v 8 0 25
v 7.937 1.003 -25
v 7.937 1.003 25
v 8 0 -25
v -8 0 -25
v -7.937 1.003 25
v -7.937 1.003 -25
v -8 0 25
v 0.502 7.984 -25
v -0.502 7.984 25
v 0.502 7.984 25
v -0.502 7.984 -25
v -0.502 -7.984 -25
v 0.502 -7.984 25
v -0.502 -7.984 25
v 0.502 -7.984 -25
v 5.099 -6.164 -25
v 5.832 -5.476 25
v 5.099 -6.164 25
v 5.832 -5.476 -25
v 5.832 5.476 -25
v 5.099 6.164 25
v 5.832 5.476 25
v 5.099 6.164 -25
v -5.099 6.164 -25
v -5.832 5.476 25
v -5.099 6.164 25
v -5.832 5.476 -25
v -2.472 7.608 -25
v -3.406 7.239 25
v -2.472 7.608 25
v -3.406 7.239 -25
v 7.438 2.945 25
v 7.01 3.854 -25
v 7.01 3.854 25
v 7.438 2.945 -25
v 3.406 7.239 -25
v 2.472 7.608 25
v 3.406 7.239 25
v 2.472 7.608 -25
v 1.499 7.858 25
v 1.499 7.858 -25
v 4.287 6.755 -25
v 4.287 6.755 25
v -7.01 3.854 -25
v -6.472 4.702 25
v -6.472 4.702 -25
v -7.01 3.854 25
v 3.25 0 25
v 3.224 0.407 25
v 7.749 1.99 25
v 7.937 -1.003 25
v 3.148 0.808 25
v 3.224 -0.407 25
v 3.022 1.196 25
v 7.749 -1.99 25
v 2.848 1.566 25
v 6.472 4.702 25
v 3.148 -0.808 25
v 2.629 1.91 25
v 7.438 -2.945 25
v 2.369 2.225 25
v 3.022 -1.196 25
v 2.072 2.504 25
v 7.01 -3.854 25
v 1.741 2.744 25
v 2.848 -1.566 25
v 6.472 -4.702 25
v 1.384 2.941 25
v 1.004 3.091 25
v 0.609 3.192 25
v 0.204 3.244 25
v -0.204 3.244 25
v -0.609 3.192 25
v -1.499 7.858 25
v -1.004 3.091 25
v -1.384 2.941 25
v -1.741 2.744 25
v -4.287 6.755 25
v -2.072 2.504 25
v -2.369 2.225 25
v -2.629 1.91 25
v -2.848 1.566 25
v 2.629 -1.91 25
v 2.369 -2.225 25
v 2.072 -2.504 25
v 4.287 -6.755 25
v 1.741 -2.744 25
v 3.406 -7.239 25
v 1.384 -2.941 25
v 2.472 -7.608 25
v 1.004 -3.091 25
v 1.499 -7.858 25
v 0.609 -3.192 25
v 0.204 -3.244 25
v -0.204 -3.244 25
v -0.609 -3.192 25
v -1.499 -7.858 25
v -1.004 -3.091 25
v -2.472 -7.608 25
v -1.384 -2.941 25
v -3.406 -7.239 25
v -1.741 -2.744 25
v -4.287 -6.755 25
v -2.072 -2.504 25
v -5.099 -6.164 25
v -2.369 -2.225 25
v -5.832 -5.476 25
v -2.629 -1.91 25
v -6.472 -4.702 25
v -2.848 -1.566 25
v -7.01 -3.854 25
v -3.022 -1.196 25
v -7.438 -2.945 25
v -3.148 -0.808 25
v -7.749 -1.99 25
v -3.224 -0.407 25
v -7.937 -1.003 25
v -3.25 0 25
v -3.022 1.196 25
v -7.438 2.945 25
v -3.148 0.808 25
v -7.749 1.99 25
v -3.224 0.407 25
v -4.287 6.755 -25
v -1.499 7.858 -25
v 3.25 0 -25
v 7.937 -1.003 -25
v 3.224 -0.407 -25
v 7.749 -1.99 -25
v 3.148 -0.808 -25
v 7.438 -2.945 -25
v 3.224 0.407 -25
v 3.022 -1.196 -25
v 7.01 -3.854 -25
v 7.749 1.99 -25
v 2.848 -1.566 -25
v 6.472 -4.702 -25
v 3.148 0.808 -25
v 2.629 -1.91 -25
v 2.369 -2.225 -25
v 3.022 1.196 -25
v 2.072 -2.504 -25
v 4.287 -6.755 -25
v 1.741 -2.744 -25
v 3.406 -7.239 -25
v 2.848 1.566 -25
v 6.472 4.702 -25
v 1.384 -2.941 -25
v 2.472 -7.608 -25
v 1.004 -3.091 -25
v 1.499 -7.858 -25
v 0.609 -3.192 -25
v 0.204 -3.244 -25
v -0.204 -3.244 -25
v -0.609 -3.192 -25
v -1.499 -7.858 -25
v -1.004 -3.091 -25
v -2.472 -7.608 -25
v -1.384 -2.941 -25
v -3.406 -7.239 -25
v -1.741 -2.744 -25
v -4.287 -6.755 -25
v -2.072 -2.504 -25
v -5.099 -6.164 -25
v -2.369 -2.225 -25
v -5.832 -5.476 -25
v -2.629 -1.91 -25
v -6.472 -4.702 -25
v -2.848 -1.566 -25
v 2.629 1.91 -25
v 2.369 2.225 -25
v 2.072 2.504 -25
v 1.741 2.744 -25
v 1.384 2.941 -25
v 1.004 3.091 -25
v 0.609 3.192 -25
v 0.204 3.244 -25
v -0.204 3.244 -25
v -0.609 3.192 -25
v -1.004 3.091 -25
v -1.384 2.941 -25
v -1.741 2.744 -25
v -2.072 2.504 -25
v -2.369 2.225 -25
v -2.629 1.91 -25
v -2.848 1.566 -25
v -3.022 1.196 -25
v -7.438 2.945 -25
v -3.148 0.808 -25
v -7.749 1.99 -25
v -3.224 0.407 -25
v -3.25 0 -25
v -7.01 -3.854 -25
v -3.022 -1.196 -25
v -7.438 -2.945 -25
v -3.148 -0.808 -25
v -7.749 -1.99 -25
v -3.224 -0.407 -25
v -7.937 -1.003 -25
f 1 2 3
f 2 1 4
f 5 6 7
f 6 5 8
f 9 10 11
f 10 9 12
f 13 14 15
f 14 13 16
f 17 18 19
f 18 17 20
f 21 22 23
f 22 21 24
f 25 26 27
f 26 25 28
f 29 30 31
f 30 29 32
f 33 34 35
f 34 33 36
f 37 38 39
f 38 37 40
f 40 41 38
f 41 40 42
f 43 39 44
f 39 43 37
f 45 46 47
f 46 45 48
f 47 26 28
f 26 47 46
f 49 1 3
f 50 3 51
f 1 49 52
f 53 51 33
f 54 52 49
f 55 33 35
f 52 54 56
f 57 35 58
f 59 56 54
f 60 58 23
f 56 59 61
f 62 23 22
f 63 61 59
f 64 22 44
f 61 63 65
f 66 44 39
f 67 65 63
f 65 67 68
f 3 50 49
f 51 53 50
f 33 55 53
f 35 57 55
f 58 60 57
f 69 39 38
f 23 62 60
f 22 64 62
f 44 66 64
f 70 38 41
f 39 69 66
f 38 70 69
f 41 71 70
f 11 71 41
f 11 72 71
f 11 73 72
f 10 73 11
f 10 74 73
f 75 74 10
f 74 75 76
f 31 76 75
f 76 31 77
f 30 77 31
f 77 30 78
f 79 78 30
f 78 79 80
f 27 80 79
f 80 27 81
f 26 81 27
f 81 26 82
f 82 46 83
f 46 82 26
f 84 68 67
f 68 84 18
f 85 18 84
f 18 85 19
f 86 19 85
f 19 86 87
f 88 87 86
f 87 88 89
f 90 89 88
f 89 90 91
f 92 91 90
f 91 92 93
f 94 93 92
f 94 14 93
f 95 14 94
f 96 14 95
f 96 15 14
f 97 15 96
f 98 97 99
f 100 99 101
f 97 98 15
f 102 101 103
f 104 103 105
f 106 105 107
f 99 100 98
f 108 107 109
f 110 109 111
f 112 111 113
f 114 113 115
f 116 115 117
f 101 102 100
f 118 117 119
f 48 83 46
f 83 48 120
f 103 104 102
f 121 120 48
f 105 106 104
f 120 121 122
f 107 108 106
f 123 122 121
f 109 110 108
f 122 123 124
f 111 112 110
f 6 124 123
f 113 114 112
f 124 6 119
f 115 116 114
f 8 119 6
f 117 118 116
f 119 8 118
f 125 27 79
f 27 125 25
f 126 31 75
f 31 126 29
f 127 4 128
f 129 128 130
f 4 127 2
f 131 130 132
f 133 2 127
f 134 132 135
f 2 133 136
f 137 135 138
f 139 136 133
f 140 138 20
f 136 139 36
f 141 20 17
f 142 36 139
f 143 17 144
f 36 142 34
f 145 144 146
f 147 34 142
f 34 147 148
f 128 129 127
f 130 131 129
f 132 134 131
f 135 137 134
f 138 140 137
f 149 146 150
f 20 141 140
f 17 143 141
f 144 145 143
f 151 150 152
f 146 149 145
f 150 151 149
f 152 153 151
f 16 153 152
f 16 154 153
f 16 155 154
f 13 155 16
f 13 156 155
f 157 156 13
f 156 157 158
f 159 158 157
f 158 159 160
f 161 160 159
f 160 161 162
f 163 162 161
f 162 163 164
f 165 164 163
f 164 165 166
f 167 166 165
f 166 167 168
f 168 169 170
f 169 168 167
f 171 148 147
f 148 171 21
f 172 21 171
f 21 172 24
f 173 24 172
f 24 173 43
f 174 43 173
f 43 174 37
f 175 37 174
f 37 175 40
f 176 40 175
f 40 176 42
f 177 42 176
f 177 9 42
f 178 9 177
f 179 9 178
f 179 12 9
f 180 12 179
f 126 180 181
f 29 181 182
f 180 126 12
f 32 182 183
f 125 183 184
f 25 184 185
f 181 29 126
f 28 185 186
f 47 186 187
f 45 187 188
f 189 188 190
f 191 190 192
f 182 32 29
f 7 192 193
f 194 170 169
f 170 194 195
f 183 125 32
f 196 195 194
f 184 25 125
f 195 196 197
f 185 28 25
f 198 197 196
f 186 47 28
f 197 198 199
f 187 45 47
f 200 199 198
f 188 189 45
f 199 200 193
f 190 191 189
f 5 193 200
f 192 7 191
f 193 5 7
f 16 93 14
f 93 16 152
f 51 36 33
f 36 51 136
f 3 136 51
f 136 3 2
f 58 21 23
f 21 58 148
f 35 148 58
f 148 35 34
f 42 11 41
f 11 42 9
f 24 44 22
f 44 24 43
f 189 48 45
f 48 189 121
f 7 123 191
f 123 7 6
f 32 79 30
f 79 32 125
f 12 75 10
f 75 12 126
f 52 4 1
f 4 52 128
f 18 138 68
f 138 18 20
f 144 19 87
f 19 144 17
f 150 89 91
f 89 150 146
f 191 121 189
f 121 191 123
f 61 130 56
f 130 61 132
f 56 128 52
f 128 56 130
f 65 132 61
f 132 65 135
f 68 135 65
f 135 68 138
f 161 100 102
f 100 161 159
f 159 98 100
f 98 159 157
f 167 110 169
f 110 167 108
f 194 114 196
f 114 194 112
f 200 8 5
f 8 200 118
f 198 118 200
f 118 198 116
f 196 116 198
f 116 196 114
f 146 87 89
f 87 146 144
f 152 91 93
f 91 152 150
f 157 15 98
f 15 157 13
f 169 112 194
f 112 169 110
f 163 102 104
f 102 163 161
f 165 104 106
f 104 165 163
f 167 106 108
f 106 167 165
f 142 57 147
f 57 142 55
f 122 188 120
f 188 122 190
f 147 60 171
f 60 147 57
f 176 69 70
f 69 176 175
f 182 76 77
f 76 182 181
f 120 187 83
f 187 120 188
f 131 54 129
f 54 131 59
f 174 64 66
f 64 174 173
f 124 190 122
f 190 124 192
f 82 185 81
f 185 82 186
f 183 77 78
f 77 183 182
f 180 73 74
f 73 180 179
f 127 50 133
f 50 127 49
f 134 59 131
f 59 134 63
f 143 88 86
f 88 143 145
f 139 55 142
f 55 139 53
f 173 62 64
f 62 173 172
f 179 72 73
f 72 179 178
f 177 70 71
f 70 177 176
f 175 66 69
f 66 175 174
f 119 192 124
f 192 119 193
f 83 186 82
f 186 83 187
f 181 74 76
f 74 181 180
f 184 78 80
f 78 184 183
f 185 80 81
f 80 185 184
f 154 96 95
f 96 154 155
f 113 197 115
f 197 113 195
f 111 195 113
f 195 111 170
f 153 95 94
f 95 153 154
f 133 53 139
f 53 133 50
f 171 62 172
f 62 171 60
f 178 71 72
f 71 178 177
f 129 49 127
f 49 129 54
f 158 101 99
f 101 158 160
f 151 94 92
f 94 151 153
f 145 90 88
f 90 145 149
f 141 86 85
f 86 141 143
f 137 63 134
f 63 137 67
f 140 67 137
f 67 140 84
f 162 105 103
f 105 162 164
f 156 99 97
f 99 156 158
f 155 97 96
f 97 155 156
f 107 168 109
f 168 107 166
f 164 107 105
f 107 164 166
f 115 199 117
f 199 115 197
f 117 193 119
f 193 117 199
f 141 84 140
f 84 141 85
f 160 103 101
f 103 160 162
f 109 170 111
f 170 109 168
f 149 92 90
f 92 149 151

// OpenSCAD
$fn = 50;


difference() {
	union() {
		translate(v = [0, 0, -25.0000000000]) {
			cylinder(h = 50, r = 8.0000000000);
		}
	}
	union() {
		translate(v = [0, 0, -100.0000000000]) {
			cylinder(h = 200, r = 3.2500000000);
		}
	}
}
